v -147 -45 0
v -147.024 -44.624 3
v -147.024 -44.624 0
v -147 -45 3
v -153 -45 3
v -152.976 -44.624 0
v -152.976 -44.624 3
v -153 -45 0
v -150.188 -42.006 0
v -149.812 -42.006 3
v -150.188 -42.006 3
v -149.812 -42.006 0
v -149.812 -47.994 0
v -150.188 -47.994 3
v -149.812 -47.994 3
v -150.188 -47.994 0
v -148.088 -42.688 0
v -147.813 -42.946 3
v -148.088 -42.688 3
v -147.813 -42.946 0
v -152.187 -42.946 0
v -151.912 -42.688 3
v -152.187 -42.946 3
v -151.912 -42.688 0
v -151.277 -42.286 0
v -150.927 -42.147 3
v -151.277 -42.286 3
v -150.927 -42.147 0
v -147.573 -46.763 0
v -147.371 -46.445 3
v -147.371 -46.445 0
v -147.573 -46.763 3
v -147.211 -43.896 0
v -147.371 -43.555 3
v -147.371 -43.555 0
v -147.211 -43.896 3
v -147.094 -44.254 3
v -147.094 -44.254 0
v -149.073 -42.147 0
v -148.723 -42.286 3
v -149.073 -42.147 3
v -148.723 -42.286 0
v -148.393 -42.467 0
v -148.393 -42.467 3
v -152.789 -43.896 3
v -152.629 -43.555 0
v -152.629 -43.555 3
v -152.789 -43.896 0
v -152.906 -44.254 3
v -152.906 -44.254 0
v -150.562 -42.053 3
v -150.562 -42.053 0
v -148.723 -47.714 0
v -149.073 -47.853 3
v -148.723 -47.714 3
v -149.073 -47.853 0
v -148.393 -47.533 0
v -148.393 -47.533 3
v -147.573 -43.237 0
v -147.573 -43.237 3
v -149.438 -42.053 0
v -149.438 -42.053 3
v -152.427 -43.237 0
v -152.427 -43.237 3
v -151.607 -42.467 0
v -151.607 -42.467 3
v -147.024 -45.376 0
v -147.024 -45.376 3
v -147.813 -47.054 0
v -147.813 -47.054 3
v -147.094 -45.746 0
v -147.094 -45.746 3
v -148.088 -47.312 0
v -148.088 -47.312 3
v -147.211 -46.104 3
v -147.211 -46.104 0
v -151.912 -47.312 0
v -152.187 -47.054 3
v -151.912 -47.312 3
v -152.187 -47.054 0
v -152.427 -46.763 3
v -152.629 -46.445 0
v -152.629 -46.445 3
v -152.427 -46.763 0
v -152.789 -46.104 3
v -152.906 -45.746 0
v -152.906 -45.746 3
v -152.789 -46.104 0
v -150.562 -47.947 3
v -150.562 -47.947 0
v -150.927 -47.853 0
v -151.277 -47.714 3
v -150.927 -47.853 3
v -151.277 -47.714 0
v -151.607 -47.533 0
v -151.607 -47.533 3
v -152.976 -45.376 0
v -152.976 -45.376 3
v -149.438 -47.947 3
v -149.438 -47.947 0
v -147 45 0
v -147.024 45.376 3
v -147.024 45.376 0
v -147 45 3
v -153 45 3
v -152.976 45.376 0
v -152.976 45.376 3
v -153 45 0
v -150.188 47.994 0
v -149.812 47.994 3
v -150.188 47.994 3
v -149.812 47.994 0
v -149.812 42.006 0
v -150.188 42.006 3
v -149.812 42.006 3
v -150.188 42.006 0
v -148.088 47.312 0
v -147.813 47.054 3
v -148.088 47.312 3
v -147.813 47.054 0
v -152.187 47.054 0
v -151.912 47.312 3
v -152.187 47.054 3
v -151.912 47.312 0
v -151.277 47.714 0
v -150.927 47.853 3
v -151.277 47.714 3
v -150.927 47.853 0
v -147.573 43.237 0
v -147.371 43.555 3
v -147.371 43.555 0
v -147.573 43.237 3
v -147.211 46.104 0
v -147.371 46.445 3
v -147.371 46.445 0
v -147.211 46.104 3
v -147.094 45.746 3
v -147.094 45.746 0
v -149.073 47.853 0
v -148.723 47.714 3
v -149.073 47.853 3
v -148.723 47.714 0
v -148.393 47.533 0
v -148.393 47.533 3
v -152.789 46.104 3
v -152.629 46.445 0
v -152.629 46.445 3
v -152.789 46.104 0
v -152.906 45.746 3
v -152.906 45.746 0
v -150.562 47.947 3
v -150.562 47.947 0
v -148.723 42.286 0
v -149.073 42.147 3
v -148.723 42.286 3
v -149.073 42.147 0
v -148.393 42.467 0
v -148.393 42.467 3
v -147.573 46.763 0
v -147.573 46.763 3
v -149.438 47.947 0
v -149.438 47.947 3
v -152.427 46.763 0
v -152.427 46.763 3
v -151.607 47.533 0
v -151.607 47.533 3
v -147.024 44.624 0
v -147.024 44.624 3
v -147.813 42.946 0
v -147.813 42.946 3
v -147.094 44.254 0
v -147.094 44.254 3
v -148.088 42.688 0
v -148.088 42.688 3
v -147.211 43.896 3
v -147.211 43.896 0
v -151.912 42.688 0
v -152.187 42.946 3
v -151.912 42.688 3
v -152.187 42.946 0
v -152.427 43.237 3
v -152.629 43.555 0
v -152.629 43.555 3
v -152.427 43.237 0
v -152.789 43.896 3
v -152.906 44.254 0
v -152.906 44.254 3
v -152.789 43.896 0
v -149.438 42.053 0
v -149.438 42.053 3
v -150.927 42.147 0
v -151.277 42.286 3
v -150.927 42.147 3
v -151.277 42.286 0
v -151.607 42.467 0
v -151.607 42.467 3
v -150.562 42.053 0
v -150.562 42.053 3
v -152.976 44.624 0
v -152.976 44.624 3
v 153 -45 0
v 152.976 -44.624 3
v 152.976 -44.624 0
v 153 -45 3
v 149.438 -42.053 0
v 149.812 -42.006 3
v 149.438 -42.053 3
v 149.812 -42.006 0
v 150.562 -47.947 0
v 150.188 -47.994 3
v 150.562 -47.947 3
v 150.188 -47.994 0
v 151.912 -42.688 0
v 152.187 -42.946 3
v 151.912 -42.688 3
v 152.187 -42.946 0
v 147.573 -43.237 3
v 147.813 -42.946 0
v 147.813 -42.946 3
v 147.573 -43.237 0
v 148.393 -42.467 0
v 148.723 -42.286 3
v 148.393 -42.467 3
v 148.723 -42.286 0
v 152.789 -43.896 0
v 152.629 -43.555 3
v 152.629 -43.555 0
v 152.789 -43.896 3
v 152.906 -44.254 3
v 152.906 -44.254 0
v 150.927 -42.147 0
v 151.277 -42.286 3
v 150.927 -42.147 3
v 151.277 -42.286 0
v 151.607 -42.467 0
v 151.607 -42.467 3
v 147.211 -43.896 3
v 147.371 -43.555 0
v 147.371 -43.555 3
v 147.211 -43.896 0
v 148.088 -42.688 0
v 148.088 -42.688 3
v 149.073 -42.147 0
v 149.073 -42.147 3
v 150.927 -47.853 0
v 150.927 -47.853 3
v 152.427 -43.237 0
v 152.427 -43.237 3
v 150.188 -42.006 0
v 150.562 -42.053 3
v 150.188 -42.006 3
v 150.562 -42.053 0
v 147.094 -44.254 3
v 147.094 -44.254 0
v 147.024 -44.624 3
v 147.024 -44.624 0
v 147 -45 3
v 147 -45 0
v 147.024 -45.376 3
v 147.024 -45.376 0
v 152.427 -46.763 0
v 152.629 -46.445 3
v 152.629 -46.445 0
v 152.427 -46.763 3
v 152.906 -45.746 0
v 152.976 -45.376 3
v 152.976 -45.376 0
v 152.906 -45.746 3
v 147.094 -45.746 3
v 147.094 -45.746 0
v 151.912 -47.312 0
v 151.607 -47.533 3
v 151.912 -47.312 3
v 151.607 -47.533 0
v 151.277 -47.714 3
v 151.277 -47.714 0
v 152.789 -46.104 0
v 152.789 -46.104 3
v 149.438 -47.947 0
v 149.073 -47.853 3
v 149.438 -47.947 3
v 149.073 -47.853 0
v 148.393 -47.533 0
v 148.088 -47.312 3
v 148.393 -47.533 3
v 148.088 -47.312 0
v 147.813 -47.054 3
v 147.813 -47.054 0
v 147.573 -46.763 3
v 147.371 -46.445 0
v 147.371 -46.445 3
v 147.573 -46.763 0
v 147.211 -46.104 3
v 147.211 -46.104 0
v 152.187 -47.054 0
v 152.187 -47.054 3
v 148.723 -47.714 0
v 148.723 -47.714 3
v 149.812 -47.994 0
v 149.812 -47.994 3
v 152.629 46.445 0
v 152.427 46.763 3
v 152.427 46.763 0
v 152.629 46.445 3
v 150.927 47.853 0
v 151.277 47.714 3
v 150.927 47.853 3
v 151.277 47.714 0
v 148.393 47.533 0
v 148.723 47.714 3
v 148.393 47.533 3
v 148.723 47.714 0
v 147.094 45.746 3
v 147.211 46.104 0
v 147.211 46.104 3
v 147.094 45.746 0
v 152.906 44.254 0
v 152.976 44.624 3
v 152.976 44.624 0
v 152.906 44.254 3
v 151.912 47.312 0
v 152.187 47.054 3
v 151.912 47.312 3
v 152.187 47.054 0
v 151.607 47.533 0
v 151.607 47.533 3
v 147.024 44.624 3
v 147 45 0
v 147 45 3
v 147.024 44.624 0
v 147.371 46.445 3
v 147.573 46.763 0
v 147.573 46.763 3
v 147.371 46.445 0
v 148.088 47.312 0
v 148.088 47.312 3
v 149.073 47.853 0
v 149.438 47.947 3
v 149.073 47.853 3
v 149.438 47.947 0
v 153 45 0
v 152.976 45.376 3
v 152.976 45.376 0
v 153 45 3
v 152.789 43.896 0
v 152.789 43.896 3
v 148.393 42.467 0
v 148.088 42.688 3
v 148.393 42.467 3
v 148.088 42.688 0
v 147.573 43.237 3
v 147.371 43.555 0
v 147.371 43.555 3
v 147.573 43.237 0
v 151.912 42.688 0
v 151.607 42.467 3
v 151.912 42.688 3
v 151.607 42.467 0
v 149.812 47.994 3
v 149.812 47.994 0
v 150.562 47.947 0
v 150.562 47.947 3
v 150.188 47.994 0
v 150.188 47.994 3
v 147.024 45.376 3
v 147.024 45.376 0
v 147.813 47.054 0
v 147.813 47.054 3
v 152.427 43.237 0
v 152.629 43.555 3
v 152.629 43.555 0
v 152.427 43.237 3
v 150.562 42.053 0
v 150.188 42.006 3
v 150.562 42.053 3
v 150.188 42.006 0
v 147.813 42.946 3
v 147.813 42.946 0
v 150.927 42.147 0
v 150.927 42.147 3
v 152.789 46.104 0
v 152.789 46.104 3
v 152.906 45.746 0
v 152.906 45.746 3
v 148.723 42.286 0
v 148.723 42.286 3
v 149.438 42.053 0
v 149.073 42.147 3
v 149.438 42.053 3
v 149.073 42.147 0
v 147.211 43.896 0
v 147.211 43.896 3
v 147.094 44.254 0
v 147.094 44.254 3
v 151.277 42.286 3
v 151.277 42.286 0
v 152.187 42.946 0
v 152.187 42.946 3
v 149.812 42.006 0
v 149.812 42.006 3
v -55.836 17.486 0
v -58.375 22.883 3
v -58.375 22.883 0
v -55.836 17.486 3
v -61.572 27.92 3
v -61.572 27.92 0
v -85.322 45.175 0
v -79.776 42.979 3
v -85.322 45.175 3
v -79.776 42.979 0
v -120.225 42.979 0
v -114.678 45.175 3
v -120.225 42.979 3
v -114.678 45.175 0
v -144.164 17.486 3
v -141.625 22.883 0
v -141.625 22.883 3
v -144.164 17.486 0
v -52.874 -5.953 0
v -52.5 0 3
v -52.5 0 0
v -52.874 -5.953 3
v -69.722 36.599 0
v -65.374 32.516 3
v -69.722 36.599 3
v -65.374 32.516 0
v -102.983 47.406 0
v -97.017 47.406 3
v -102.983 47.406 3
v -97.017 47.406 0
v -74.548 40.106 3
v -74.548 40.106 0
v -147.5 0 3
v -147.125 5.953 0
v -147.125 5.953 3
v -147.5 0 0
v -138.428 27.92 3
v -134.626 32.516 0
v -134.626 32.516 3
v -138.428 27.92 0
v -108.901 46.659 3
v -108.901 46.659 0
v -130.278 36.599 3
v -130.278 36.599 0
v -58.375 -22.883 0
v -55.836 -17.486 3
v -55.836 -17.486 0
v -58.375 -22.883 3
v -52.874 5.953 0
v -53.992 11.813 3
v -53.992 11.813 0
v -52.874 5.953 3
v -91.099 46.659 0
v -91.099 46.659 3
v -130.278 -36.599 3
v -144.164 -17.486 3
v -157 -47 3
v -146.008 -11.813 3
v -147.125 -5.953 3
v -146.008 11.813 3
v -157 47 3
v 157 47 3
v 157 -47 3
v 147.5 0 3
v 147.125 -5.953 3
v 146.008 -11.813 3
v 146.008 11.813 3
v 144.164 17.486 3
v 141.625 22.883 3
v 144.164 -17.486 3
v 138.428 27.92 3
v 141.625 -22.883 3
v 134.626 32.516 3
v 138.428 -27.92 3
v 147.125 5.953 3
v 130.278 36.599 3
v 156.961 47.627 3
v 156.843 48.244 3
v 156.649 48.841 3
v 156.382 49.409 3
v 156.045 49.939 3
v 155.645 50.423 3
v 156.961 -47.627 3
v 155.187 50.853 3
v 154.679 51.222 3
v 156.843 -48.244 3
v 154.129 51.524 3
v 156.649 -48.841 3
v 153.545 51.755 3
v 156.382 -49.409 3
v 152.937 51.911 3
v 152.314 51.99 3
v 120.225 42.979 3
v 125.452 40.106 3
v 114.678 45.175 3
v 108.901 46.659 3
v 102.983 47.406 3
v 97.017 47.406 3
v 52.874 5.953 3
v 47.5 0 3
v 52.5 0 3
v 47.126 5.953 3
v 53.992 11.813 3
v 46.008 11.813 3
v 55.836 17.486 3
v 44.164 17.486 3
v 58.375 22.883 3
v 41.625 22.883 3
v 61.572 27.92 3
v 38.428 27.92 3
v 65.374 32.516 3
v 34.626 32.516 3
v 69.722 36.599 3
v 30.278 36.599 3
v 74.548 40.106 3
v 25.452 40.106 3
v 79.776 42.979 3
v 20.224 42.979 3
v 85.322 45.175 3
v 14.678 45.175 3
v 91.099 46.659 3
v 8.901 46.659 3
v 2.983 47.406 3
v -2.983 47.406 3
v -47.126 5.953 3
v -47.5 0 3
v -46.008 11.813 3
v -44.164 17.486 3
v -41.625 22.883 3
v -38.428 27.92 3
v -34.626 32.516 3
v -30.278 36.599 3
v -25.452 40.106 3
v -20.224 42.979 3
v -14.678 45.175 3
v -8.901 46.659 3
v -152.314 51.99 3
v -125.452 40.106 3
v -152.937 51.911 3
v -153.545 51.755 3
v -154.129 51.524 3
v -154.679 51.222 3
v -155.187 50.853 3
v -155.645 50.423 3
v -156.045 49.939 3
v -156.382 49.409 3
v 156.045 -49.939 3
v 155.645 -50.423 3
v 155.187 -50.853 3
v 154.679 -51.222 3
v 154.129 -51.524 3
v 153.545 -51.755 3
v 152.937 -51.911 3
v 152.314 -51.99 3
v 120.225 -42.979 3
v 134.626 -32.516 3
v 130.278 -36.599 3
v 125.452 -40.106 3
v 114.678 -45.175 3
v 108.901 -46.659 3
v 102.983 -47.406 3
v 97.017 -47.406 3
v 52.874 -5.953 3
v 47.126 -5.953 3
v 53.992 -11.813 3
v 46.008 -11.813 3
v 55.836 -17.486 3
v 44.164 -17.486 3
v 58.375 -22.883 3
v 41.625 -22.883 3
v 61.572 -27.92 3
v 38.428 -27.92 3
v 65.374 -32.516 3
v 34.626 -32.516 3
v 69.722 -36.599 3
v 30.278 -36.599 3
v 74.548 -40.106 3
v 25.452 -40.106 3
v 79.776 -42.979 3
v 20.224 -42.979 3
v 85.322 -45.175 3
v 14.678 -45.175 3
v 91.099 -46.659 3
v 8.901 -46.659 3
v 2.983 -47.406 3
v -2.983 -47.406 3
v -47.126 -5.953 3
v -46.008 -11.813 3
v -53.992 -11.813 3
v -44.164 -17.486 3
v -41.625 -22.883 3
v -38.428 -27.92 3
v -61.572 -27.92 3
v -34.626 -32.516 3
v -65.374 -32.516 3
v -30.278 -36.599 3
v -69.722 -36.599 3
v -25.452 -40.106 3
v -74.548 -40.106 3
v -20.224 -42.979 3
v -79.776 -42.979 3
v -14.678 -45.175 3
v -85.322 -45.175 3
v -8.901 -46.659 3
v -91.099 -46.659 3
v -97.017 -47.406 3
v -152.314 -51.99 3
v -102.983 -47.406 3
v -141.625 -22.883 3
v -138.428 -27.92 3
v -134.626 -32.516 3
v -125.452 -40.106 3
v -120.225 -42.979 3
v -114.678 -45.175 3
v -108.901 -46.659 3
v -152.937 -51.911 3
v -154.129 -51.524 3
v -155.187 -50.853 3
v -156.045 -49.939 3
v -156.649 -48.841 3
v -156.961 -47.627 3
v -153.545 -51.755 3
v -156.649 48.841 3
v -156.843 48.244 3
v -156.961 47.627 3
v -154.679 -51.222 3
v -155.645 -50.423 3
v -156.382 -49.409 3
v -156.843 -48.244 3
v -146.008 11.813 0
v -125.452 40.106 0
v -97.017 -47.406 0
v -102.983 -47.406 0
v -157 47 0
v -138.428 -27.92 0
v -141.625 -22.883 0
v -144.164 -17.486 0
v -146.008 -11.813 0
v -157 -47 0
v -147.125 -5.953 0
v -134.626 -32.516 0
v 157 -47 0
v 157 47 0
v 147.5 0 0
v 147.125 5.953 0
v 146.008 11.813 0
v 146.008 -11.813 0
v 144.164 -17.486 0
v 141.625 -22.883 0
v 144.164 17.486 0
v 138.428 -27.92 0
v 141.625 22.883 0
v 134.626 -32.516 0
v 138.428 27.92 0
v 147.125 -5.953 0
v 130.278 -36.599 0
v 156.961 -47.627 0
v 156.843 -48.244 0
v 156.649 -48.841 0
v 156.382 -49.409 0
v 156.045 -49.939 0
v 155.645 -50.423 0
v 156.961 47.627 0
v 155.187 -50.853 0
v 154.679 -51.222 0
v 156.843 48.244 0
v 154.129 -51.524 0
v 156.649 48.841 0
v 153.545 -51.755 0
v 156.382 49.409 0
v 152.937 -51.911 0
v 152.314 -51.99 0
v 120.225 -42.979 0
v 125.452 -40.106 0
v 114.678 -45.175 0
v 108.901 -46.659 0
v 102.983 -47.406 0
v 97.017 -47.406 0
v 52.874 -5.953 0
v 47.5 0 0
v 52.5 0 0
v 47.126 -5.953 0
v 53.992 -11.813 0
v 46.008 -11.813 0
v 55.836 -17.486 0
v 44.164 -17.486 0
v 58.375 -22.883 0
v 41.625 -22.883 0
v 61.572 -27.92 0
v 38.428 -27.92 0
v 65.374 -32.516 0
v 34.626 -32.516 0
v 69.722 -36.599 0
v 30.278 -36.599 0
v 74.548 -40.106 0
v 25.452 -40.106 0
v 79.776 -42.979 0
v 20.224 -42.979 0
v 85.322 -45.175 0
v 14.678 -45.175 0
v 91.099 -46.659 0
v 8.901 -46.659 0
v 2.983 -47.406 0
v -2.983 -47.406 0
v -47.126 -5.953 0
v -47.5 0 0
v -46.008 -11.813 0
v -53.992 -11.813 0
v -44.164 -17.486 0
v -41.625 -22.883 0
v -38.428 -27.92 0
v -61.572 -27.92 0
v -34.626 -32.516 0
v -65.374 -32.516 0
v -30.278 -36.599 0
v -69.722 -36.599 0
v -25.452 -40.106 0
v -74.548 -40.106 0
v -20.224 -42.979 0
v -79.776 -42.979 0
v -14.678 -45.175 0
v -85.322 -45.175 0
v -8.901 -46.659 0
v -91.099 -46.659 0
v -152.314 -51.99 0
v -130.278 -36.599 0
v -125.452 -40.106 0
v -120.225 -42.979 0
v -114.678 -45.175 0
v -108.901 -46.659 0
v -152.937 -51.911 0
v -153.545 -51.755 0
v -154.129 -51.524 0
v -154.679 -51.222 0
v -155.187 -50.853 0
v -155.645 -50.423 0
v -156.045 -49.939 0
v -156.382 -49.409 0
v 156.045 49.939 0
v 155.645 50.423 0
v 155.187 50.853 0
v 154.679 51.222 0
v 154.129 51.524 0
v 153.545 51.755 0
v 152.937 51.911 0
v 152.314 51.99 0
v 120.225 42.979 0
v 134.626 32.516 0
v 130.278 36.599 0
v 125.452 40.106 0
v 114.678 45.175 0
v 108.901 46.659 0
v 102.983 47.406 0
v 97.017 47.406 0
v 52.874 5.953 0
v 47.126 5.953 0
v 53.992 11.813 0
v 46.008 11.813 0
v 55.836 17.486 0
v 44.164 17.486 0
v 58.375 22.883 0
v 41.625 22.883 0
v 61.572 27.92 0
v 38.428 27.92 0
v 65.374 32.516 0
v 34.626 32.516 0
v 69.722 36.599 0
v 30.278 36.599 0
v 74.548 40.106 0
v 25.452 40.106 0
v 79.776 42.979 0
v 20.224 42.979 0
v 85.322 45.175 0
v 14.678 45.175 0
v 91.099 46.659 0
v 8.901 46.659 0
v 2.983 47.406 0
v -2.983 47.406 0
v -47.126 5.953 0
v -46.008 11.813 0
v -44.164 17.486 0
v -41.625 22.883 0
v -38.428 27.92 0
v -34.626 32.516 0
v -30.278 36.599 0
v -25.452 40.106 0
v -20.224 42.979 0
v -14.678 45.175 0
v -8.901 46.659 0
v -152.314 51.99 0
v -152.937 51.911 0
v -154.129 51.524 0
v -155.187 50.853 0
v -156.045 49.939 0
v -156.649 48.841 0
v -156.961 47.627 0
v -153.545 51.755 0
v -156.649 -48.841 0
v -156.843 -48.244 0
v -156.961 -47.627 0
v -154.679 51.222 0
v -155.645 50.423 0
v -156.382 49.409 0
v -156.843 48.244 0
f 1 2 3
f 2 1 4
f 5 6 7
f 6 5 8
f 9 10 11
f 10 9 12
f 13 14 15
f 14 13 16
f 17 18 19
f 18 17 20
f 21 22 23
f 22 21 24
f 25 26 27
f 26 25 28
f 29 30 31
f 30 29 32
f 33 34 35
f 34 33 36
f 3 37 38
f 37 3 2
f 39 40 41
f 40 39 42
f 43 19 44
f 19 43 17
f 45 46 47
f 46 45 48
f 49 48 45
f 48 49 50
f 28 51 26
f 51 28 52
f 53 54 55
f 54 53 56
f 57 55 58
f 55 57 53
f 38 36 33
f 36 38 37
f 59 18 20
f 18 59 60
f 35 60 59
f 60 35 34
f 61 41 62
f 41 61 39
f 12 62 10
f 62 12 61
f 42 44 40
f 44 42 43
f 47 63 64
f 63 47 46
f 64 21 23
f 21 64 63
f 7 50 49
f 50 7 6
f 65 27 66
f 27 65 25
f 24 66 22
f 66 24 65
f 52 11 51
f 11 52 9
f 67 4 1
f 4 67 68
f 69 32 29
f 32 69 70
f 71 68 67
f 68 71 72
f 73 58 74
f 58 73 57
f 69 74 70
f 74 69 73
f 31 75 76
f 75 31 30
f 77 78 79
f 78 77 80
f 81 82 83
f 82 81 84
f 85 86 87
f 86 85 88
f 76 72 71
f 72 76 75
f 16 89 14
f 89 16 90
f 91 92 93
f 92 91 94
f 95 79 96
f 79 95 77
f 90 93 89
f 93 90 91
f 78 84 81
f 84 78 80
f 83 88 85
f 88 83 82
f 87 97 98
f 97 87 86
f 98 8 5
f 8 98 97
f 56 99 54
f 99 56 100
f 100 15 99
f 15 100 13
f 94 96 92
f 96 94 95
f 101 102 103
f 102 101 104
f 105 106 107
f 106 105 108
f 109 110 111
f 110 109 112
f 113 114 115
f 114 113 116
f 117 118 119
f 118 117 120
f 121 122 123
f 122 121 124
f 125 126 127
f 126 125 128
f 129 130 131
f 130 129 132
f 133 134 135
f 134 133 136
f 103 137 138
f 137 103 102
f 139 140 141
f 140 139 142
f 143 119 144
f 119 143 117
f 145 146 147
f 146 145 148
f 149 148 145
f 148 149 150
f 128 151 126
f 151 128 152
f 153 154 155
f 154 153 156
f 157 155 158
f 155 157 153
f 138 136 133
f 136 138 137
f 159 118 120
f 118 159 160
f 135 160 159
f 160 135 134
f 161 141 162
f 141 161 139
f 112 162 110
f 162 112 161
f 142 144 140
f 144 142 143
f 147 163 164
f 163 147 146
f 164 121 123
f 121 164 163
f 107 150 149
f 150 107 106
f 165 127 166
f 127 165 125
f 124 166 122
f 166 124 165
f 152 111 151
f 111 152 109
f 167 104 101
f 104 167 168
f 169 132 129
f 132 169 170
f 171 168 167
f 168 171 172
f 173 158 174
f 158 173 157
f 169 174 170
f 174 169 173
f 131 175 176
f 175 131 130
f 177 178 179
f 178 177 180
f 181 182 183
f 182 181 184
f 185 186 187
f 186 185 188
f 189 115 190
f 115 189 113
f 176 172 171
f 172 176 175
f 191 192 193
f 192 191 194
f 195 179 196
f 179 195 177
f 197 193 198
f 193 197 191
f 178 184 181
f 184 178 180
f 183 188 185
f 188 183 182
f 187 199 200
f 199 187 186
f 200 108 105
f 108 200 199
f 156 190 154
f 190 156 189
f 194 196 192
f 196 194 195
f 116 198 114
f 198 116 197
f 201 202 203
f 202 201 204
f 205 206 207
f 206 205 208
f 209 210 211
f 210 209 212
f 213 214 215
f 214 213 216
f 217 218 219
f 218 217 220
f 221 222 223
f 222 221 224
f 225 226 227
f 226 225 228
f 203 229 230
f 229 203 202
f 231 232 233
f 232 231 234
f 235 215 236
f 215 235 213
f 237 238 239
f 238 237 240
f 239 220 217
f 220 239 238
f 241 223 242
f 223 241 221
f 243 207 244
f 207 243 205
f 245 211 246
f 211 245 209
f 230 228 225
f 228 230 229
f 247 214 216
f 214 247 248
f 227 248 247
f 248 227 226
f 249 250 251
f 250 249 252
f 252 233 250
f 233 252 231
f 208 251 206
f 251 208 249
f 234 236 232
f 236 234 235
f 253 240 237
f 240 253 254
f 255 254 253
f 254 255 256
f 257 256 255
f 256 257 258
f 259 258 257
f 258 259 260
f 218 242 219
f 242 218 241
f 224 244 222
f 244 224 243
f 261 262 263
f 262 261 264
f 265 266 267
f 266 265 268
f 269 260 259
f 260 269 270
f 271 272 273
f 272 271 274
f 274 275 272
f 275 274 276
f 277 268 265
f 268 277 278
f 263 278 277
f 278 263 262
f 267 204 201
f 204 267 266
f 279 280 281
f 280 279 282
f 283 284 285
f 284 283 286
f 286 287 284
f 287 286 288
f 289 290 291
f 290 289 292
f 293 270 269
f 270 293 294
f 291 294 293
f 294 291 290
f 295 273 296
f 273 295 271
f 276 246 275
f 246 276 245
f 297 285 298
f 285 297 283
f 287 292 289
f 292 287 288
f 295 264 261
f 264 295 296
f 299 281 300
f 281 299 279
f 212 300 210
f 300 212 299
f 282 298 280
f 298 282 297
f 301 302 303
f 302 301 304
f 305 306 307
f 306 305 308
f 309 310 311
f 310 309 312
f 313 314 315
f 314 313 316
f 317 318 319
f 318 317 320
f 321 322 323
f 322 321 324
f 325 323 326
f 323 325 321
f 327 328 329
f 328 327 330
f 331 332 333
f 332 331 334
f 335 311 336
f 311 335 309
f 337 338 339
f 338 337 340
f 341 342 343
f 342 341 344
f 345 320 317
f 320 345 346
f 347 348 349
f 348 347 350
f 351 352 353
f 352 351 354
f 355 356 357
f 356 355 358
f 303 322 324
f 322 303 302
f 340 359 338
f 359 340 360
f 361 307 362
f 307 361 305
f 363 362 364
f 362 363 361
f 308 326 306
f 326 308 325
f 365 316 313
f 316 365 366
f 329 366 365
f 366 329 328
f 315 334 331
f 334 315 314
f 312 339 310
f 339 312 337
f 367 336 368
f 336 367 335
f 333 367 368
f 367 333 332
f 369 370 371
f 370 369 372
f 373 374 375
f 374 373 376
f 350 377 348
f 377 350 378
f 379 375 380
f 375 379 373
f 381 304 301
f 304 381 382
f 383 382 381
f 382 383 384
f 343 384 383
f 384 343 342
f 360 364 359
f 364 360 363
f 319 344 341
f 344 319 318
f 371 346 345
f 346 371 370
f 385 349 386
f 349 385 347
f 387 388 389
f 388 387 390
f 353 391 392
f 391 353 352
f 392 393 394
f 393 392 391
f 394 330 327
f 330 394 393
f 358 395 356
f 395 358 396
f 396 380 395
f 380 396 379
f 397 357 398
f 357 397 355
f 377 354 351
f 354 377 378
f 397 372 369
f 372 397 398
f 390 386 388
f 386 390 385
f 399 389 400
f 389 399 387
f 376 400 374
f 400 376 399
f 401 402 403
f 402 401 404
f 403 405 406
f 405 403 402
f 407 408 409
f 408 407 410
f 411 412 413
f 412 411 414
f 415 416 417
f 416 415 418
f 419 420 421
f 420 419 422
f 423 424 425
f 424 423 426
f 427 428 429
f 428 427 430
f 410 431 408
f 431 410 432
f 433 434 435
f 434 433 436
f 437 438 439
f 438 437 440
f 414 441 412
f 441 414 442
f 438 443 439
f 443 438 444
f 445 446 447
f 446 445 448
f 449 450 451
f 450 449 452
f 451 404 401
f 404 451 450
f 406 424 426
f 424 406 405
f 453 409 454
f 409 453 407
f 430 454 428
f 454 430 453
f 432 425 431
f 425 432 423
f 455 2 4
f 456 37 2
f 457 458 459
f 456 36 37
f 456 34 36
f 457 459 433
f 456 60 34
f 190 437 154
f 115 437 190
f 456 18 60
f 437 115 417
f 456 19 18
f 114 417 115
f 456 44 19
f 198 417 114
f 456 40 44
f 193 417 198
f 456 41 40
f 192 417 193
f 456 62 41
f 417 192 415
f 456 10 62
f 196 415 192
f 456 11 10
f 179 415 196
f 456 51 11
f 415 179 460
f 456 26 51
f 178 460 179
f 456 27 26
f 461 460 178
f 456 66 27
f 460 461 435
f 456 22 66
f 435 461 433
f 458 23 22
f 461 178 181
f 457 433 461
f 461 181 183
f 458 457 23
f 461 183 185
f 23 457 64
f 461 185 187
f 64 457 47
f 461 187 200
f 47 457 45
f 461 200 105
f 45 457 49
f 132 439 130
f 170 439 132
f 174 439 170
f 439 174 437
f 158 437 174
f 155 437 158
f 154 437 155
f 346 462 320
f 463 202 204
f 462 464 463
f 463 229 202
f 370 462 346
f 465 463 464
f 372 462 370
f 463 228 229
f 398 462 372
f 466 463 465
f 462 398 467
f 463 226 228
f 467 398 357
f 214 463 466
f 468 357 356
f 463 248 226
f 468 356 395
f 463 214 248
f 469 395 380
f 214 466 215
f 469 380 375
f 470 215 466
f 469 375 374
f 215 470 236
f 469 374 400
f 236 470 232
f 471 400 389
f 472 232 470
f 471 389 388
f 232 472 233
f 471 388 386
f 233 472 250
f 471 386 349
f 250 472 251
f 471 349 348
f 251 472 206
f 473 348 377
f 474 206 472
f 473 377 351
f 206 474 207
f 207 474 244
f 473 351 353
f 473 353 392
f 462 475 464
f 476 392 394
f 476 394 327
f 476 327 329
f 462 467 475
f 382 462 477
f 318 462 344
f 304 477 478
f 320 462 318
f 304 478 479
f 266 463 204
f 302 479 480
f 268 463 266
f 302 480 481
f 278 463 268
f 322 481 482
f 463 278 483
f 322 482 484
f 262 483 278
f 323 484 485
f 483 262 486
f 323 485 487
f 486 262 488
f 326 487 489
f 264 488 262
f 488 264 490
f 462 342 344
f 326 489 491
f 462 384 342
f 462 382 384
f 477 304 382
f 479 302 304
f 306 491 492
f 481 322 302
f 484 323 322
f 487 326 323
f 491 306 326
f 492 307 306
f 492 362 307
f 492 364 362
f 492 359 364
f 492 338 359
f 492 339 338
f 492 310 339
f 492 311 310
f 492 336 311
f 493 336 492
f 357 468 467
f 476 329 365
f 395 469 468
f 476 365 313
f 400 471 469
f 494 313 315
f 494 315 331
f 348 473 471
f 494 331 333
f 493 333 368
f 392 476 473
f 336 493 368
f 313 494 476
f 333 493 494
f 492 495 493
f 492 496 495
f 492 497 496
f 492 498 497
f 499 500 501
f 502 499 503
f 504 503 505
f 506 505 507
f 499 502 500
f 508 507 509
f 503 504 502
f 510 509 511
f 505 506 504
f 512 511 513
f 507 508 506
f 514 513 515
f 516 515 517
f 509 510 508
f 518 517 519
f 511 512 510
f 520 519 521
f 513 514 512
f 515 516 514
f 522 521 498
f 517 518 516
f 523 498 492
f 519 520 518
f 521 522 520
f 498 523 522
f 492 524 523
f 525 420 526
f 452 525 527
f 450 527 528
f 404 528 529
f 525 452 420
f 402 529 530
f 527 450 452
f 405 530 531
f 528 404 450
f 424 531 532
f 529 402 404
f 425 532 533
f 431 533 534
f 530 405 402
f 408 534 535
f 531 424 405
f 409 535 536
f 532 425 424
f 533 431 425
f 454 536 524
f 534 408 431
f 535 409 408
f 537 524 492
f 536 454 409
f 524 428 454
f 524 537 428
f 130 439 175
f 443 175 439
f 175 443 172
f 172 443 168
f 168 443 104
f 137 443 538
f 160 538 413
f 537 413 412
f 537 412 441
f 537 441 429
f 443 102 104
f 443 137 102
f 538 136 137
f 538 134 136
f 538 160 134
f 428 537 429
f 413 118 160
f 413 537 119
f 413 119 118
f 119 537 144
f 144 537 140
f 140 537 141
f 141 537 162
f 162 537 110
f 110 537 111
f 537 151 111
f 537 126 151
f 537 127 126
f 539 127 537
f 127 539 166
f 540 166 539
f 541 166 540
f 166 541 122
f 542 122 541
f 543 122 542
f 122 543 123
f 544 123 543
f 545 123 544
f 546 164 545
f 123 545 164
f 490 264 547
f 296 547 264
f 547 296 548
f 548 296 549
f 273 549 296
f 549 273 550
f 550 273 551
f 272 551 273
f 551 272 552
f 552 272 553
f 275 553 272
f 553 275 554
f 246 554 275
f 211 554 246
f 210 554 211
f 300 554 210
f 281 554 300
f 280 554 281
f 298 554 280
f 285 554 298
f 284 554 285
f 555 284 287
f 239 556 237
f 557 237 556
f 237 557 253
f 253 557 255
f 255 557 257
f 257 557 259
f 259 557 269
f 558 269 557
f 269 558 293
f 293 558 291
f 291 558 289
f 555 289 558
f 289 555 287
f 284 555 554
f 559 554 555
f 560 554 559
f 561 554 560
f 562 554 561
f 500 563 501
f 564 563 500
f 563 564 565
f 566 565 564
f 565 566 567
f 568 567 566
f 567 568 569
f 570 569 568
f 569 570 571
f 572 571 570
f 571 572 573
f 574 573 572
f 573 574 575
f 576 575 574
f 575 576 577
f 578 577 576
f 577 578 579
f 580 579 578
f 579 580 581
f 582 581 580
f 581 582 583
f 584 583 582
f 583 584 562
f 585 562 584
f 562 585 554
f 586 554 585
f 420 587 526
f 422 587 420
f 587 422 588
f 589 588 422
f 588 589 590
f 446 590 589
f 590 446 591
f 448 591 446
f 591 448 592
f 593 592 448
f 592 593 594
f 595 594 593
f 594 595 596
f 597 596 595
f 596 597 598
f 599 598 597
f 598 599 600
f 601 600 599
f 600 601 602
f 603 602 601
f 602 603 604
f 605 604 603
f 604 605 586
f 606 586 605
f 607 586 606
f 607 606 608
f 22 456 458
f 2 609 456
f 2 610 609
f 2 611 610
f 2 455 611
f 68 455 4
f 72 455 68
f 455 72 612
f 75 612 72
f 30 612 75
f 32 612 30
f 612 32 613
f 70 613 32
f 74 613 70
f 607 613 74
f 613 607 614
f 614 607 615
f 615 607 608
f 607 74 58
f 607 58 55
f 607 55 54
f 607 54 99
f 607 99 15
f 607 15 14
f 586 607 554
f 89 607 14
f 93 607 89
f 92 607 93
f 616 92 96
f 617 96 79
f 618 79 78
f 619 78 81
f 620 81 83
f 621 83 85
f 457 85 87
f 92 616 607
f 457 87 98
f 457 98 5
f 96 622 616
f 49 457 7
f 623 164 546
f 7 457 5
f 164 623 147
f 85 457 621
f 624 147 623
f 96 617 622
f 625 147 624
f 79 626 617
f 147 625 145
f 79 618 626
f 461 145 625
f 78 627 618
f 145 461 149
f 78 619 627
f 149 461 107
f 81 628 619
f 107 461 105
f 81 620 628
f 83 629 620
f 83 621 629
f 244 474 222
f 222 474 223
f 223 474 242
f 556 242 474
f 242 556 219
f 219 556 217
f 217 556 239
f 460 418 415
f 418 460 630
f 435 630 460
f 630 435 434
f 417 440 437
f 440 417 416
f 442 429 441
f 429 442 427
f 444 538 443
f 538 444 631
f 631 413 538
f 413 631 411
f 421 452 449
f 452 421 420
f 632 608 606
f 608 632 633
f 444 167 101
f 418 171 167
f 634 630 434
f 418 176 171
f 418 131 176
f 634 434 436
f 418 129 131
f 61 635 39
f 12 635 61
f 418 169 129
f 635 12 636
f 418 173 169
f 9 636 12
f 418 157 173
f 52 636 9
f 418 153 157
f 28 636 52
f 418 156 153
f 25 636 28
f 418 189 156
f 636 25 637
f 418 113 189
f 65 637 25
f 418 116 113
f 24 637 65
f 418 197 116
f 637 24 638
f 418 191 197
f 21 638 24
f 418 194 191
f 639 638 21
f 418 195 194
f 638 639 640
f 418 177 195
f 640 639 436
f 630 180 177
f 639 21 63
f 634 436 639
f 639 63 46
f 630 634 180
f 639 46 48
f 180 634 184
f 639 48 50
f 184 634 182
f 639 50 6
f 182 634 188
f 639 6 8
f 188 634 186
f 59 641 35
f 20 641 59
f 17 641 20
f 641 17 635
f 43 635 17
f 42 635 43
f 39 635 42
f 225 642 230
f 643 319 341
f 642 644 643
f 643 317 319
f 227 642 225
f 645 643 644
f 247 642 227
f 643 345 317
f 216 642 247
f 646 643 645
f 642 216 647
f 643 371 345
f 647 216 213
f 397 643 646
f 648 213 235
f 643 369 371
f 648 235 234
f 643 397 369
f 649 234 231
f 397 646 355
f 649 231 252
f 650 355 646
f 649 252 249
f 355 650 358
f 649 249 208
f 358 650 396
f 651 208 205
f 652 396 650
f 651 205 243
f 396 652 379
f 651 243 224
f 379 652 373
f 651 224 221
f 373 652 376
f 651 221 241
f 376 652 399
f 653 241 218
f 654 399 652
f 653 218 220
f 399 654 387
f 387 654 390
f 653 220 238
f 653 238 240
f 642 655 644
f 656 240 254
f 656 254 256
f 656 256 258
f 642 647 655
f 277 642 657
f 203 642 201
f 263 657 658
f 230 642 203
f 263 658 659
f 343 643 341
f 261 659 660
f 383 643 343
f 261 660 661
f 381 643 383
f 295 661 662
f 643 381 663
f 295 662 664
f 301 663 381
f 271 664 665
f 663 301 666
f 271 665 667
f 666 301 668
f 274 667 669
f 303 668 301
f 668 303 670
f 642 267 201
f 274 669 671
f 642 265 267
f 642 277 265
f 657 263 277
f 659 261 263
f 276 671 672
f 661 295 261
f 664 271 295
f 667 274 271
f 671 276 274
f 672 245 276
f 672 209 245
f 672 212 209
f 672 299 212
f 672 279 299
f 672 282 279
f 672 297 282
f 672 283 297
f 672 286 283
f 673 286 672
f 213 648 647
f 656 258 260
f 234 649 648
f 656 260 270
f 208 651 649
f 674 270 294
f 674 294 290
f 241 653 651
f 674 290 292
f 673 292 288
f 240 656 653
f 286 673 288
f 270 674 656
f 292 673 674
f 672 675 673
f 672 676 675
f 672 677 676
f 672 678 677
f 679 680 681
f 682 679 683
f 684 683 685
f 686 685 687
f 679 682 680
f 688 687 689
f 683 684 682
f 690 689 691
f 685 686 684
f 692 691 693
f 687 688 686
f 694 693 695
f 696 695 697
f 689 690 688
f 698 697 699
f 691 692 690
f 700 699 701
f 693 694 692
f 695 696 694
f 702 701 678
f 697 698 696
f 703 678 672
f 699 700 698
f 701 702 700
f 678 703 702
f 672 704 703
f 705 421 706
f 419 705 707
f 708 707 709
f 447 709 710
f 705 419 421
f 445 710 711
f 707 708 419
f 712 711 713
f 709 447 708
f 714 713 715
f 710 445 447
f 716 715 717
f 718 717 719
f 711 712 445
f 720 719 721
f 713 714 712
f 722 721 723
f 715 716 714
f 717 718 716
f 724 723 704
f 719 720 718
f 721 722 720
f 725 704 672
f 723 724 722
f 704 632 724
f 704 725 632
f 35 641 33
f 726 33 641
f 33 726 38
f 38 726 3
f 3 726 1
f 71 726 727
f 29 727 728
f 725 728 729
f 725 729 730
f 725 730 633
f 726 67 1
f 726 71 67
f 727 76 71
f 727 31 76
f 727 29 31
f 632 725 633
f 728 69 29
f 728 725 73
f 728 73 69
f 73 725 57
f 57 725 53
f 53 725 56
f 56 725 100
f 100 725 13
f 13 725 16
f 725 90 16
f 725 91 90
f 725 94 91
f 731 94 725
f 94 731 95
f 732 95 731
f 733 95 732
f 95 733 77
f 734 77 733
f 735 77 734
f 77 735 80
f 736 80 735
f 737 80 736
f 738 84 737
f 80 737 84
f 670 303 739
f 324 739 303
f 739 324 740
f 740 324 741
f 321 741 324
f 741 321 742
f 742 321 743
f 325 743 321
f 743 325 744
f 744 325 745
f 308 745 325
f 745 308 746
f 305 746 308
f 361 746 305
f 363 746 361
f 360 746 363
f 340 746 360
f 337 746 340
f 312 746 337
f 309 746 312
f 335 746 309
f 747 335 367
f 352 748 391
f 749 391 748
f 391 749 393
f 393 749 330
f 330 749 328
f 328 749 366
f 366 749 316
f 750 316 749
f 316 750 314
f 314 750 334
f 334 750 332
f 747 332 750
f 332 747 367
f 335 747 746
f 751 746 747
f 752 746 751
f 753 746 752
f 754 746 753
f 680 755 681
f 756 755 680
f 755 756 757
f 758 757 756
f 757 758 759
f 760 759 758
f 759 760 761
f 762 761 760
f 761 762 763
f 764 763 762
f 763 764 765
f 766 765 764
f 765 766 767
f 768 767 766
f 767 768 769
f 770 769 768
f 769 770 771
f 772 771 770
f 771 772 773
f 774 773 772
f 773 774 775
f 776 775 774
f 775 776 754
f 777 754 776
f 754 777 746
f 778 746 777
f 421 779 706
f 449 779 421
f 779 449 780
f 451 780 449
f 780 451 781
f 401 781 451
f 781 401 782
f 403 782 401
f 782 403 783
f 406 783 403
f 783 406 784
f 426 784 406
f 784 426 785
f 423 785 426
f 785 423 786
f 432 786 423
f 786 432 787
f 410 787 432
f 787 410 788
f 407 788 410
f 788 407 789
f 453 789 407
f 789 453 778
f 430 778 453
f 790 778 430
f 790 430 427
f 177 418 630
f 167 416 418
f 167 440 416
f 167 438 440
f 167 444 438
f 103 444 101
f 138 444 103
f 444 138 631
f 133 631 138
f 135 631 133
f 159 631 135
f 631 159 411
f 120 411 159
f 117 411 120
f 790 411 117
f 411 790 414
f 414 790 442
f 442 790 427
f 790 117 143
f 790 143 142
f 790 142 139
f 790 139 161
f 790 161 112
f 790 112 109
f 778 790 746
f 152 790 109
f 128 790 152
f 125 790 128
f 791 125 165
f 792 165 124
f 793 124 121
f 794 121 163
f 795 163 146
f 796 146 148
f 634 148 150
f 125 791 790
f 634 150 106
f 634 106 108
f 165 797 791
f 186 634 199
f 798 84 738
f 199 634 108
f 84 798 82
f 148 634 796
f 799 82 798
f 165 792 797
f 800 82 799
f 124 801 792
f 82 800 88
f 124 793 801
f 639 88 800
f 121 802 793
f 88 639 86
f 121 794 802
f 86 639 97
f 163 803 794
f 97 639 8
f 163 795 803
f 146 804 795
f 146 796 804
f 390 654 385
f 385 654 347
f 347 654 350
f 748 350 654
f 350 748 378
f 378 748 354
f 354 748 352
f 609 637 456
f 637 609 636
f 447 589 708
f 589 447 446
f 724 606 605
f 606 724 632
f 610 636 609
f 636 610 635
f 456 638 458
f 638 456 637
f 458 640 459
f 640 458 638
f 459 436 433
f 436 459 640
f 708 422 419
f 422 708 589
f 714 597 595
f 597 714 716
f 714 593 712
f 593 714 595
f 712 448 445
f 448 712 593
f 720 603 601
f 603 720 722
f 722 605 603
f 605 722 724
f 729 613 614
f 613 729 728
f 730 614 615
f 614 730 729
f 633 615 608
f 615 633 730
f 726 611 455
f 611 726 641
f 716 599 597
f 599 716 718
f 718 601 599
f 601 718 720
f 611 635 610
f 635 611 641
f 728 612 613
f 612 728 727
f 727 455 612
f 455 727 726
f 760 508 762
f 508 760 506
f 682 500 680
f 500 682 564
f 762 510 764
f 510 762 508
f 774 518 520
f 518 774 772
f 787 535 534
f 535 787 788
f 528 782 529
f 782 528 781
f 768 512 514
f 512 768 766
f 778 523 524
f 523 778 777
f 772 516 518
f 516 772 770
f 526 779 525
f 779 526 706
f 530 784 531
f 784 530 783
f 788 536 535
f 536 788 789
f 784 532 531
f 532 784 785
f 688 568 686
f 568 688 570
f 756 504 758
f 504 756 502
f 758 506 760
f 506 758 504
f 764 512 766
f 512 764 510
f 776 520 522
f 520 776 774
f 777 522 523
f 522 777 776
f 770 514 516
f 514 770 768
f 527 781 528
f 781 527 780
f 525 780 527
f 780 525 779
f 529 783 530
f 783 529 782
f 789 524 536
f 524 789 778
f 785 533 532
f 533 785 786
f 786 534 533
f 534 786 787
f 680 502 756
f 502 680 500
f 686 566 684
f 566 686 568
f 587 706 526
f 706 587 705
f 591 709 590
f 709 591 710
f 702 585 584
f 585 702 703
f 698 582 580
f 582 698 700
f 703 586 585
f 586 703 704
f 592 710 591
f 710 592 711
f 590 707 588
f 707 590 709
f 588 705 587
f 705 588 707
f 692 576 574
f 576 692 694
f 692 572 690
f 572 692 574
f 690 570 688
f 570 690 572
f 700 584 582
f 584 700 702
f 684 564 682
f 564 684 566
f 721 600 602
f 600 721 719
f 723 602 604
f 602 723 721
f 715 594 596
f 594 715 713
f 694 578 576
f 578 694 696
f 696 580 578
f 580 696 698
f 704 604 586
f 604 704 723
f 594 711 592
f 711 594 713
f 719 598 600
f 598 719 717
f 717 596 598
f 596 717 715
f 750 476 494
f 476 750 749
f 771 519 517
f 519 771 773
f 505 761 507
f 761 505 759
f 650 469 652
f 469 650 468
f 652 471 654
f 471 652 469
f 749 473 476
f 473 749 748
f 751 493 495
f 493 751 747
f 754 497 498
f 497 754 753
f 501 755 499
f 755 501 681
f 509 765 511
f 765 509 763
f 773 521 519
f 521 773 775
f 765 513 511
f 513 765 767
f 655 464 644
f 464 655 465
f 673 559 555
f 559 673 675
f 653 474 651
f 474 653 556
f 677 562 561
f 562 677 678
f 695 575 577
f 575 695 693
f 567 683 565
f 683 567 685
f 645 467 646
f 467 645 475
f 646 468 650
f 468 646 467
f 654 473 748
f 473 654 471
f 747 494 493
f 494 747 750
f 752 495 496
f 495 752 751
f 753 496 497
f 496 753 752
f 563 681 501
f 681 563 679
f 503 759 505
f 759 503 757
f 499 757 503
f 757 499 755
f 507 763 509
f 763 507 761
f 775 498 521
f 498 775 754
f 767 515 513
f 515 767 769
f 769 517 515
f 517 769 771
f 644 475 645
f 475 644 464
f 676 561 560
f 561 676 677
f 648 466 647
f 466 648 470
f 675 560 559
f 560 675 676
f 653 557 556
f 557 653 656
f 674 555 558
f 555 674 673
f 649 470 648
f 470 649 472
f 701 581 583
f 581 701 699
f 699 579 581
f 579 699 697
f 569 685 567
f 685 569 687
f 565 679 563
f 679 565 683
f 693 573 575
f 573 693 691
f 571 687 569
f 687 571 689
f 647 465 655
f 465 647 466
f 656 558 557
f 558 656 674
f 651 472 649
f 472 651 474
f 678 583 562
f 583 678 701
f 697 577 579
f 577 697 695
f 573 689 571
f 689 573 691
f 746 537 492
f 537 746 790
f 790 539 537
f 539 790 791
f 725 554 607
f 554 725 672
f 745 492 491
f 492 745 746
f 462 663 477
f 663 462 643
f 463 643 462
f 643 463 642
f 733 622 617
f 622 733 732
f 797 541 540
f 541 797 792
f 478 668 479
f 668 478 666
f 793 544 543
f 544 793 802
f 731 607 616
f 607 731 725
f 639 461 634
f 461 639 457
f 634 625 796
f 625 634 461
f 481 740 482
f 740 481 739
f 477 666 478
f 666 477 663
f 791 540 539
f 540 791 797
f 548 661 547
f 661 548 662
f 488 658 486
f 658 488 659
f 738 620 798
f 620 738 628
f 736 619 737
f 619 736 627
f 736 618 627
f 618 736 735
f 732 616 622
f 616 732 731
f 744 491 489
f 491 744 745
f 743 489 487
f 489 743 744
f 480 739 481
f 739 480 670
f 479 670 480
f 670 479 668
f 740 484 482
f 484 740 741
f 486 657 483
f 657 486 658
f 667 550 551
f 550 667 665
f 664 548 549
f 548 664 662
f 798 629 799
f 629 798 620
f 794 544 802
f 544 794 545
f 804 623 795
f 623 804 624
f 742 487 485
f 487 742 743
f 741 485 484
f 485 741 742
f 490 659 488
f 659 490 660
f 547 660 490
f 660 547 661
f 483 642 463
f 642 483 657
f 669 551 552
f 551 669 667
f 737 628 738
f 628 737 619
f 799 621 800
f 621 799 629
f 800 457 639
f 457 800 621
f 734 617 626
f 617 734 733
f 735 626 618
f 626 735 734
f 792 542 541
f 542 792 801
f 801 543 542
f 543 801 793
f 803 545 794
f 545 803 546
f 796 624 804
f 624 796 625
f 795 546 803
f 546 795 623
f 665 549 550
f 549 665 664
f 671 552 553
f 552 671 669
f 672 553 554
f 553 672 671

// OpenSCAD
$fn = 50;


difference() {
	union() {
		hull() {
			translate(v = [-152.0000000000, 47.0000000000, 0]) {
				cylinder(h = 3, r = 5);
			}
			translate(v = [152.0000000000, 47.0000000000, 0]) {
				cylinder(h = 3, r = 5);
			}
			translate(v = [-152.0000000000, -47.0000000000, 0]) {
				cylinder(h = 3, r = 5);
			}
			translate(v = [152.0000000000, -47.0000000000, 0]) {
				cylinder(h = 3, r = 5);
			}
		}
	}
	union() {
		#translate(v = [-150.0000000000, -45.0000000000, -100.0000000000]) {
			cylinder(h = 200, r = 3.0000000000);
		}
		#translate(v = [-150.0000000000, 45.0000000000, -100.0000000000]) {
			cylinder(h = 200, r = 3.0000000000);
		}
		#translate(v = [150.0000000000, -45.0000000000, -100.0000000000]) {
			cylinder(h = 200, r = 3.0000000000);
		}
		#translate(v = [150.0000000000, 45.0000000000, -100.0000000000]) {
			cylinder(h = 200, r = 3.0000000000);
		}
		#translate(v = [-100.0000000000, 0, 0]) {
			cylinder(h = 3, r = 47.5000000000);
		}
		#cylinder(h = 3, r = 47.5000000000);
		#translate(v = [100.0000000000, 0, 0]) {
			cylinder(h = 3, r = 47.5000000000);
		}
	}
}
